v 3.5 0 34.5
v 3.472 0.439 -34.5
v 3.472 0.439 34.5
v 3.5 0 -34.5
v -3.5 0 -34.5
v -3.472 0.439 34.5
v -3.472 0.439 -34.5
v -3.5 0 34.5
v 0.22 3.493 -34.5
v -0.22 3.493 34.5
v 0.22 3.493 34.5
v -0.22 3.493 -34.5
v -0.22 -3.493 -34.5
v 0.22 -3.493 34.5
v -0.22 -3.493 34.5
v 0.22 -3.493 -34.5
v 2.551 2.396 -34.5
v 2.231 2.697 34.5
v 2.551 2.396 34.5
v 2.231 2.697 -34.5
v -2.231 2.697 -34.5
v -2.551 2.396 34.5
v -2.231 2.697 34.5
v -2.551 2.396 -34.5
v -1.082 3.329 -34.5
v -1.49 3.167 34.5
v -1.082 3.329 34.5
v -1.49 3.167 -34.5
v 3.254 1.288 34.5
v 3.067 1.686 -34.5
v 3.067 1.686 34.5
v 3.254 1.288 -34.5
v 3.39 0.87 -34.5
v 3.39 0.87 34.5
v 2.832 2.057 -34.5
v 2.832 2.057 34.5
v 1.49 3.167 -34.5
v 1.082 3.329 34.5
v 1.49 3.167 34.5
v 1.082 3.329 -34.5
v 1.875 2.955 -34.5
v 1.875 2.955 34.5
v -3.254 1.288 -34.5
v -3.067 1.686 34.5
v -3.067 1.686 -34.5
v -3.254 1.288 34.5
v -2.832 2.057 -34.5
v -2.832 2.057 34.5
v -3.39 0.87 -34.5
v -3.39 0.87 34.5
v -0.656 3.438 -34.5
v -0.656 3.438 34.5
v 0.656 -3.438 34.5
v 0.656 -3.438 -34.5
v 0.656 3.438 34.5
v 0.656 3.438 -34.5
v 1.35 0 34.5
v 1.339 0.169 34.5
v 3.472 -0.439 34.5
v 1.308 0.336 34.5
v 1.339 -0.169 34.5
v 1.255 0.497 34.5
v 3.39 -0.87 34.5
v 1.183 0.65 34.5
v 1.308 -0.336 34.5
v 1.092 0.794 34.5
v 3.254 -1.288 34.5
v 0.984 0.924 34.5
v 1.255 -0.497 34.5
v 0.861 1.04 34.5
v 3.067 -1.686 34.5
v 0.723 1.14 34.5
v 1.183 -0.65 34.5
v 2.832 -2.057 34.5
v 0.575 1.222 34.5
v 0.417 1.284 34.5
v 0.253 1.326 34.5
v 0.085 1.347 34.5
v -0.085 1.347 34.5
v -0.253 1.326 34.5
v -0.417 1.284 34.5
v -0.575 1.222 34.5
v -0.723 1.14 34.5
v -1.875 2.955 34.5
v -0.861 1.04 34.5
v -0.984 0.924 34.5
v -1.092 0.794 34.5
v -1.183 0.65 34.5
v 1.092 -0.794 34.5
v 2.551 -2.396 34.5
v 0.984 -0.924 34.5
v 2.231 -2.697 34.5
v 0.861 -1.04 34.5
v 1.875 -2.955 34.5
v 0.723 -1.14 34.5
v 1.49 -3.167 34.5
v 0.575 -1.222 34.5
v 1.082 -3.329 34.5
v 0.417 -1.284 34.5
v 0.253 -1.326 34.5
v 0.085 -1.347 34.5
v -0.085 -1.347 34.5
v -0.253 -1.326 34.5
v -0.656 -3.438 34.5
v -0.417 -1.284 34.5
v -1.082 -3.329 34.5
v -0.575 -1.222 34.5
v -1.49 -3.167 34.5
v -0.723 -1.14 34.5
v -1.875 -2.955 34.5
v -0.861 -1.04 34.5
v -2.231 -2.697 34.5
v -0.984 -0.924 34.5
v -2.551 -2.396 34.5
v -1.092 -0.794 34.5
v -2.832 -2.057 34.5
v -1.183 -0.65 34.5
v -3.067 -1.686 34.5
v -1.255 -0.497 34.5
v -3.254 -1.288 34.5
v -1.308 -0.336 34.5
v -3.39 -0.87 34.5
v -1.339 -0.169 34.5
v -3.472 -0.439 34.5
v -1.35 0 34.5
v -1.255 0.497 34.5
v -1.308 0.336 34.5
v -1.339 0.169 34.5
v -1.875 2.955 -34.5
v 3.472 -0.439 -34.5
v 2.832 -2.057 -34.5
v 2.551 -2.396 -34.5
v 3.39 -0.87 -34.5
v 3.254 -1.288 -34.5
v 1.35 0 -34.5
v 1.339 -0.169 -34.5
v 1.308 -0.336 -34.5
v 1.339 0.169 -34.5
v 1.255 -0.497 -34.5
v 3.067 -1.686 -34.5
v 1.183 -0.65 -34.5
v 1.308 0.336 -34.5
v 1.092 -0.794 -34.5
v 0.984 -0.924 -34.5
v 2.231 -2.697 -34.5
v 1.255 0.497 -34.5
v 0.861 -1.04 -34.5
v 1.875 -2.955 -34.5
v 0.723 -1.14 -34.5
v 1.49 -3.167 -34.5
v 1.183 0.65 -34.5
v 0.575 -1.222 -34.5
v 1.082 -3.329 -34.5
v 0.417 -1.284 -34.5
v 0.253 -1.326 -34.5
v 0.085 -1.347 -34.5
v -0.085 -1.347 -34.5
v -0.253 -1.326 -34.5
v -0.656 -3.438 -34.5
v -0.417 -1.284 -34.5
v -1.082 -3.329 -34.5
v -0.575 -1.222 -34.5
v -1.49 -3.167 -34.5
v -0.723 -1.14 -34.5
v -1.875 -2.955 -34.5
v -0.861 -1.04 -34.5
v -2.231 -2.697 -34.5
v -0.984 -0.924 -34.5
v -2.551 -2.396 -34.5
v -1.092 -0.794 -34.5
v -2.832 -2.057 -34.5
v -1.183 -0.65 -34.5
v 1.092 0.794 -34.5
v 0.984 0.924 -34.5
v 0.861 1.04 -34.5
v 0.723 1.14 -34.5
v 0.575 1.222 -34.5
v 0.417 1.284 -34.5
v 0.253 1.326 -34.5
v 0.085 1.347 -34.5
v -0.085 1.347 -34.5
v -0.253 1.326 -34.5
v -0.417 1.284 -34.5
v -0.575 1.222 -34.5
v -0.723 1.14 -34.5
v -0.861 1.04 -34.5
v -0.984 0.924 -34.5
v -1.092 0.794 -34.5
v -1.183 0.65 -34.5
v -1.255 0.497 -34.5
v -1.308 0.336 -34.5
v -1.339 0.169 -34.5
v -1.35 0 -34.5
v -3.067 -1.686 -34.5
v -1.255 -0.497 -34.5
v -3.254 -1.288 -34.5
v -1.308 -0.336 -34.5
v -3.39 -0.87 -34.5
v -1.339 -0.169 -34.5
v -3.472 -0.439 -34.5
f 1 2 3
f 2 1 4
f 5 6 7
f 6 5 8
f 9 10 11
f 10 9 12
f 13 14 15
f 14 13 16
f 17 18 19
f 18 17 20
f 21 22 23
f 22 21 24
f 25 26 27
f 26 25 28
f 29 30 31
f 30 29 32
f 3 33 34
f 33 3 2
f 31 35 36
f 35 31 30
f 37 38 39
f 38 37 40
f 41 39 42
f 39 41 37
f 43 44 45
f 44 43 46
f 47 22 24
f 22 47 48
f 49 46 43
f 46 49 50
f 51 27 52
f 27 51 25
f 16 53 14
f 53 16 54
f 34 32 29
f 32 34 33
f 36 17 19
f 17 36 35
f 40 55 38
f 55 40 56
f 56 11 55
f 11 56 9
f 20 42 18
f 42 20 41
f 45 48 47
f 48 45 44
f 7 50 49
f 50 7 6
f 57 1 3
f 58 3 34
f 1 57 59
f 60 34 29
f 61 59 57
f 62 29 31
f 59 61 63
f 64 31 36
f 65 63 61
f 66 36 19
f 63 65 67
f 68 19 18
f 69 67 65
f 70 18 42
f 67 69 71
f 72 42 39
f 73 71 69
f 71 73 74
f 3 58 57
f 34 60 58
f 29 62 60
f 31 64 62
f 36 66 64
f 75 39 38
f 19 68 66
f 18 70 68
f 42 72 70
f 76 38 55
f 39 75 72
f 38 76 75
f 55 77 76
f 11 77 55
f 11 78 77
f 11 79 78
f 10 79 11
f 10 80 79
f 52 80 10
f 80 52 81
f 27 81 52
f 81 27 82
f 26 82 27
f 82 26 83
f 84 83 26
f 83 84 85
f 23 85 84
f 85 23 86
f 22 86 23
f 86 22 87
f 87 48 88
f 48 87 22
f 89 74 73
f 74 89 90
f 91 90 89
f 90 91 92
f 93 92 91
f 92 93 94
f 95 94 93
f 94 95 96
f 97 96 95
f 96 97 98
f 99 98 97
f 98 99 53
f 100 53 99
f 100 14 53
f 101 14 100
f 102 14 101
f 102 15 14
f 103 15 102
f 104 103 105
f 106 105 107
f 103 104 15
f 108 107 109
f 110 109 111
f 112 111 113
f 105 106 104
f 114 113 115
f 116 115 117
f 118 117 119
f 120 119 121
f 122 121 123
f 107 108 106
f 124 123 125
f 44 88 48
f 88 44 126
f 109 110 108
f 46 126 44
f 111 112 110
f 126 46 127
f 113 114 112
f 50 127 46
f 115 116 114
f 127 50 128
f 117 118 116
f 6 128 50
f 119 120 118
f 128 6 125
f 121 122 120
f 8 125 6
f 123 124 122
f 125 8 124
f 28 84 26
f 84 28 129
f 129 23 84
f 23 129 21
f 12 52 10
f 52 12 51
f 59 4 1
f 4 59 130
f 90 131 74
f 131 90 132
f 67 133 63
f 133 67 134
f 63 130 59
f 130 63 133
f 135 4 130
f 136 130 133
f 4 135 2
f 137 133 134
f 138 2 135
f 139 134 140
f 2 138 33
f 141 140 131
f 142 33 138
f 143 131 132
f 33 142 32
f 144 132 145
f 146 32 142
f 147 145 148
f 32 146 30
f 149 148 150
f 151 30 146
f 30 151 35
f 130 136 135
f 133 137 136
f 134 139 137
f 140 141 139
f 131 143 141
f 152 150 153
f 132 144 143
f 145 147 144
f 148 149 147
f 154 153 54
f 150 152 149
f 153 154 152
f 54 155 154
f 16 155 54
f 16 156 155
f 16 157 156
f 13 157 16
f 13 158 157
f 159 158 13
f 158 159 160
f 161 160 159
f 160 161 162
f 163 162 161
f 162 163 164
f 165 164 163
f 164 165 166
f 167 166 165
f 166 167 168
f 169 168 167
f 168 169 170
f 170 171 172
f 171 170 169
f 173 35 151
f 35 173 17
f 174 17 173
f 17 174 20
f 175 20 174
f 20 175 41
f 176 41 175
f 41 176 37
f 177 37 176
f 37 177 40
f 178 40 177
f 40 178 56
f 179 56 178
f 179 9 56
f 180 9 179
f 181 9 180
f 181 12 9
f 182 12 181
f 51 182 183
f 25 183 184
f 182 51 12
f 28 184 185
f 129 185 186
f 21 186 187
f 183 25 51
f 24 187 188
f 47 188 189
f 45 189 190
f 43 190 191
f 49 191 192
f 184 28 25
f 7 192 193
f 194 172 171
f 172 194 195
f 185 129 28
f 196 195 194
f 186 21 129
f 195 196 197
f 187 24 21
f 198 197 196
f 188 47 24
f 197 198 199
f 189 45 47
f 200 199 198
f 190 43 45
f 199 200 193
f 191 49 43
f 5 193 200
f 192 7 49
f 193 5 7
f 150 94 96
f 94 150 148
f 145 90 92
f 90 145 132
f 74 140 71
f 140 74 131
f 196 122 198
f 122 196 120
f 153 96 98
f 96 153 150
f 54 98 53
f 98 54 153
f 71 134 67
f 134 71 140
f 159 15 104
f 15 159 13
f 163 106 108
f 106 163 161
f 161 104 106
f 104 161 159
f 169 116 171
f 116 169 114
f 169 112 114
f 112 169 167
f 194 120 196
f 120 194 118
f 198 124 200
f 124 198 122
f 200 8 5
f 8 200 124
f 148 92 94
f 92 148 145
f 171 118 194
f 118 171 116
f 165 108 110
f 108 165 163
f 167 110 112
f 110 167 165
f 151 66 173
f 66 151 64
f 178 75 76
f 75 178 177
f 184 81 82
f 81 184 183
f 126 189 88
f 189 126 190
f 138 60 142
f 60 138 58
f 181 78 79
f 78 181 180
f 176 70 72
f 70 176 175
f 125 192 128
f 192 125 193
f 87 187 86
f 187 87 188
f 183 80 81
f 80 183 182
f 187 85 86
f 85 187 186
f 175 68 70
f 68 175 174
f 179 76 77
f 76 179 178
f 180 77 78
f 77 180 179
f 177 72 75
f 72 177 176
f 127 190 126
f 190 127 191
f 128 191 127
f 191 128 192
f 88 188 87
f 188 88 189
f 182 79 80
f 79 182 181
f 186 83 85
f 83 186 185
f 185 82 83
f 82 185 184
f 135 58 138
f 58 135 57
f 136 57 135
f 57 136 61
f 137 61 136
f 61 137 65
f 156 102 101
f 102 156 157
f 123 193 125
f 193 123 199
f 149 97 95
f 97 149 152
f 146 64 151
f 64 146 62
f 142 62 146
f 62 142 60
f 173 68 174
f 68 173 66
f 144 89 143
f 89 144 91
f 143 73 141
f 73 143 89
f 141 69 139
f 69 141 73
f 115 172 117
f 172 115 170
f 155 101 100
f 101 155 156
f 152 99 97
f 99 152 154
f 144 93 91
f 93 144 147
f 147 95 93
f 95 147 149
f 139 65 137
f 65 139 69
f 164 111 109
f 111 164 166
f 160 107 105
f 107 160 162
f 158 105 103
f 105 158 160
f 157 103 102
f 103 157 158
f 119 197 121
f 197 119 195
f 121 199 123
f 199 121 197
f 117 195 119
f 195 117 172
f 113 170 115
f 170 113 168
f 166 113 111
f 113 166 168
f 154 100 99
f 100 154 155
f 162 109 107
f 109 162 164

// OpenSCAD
$fn = 50;


difference() {
	union() {
		translate(v = [0, 0, -34.5000000000]) {
			cylinder(h = 69, r = 3.5000000000);
		}
	}
	union() {
		translate(v = [0, 0, -100.0000000000]) {
			cylinder(h = 200, r = 1.3500000000);
		}
	}
}
